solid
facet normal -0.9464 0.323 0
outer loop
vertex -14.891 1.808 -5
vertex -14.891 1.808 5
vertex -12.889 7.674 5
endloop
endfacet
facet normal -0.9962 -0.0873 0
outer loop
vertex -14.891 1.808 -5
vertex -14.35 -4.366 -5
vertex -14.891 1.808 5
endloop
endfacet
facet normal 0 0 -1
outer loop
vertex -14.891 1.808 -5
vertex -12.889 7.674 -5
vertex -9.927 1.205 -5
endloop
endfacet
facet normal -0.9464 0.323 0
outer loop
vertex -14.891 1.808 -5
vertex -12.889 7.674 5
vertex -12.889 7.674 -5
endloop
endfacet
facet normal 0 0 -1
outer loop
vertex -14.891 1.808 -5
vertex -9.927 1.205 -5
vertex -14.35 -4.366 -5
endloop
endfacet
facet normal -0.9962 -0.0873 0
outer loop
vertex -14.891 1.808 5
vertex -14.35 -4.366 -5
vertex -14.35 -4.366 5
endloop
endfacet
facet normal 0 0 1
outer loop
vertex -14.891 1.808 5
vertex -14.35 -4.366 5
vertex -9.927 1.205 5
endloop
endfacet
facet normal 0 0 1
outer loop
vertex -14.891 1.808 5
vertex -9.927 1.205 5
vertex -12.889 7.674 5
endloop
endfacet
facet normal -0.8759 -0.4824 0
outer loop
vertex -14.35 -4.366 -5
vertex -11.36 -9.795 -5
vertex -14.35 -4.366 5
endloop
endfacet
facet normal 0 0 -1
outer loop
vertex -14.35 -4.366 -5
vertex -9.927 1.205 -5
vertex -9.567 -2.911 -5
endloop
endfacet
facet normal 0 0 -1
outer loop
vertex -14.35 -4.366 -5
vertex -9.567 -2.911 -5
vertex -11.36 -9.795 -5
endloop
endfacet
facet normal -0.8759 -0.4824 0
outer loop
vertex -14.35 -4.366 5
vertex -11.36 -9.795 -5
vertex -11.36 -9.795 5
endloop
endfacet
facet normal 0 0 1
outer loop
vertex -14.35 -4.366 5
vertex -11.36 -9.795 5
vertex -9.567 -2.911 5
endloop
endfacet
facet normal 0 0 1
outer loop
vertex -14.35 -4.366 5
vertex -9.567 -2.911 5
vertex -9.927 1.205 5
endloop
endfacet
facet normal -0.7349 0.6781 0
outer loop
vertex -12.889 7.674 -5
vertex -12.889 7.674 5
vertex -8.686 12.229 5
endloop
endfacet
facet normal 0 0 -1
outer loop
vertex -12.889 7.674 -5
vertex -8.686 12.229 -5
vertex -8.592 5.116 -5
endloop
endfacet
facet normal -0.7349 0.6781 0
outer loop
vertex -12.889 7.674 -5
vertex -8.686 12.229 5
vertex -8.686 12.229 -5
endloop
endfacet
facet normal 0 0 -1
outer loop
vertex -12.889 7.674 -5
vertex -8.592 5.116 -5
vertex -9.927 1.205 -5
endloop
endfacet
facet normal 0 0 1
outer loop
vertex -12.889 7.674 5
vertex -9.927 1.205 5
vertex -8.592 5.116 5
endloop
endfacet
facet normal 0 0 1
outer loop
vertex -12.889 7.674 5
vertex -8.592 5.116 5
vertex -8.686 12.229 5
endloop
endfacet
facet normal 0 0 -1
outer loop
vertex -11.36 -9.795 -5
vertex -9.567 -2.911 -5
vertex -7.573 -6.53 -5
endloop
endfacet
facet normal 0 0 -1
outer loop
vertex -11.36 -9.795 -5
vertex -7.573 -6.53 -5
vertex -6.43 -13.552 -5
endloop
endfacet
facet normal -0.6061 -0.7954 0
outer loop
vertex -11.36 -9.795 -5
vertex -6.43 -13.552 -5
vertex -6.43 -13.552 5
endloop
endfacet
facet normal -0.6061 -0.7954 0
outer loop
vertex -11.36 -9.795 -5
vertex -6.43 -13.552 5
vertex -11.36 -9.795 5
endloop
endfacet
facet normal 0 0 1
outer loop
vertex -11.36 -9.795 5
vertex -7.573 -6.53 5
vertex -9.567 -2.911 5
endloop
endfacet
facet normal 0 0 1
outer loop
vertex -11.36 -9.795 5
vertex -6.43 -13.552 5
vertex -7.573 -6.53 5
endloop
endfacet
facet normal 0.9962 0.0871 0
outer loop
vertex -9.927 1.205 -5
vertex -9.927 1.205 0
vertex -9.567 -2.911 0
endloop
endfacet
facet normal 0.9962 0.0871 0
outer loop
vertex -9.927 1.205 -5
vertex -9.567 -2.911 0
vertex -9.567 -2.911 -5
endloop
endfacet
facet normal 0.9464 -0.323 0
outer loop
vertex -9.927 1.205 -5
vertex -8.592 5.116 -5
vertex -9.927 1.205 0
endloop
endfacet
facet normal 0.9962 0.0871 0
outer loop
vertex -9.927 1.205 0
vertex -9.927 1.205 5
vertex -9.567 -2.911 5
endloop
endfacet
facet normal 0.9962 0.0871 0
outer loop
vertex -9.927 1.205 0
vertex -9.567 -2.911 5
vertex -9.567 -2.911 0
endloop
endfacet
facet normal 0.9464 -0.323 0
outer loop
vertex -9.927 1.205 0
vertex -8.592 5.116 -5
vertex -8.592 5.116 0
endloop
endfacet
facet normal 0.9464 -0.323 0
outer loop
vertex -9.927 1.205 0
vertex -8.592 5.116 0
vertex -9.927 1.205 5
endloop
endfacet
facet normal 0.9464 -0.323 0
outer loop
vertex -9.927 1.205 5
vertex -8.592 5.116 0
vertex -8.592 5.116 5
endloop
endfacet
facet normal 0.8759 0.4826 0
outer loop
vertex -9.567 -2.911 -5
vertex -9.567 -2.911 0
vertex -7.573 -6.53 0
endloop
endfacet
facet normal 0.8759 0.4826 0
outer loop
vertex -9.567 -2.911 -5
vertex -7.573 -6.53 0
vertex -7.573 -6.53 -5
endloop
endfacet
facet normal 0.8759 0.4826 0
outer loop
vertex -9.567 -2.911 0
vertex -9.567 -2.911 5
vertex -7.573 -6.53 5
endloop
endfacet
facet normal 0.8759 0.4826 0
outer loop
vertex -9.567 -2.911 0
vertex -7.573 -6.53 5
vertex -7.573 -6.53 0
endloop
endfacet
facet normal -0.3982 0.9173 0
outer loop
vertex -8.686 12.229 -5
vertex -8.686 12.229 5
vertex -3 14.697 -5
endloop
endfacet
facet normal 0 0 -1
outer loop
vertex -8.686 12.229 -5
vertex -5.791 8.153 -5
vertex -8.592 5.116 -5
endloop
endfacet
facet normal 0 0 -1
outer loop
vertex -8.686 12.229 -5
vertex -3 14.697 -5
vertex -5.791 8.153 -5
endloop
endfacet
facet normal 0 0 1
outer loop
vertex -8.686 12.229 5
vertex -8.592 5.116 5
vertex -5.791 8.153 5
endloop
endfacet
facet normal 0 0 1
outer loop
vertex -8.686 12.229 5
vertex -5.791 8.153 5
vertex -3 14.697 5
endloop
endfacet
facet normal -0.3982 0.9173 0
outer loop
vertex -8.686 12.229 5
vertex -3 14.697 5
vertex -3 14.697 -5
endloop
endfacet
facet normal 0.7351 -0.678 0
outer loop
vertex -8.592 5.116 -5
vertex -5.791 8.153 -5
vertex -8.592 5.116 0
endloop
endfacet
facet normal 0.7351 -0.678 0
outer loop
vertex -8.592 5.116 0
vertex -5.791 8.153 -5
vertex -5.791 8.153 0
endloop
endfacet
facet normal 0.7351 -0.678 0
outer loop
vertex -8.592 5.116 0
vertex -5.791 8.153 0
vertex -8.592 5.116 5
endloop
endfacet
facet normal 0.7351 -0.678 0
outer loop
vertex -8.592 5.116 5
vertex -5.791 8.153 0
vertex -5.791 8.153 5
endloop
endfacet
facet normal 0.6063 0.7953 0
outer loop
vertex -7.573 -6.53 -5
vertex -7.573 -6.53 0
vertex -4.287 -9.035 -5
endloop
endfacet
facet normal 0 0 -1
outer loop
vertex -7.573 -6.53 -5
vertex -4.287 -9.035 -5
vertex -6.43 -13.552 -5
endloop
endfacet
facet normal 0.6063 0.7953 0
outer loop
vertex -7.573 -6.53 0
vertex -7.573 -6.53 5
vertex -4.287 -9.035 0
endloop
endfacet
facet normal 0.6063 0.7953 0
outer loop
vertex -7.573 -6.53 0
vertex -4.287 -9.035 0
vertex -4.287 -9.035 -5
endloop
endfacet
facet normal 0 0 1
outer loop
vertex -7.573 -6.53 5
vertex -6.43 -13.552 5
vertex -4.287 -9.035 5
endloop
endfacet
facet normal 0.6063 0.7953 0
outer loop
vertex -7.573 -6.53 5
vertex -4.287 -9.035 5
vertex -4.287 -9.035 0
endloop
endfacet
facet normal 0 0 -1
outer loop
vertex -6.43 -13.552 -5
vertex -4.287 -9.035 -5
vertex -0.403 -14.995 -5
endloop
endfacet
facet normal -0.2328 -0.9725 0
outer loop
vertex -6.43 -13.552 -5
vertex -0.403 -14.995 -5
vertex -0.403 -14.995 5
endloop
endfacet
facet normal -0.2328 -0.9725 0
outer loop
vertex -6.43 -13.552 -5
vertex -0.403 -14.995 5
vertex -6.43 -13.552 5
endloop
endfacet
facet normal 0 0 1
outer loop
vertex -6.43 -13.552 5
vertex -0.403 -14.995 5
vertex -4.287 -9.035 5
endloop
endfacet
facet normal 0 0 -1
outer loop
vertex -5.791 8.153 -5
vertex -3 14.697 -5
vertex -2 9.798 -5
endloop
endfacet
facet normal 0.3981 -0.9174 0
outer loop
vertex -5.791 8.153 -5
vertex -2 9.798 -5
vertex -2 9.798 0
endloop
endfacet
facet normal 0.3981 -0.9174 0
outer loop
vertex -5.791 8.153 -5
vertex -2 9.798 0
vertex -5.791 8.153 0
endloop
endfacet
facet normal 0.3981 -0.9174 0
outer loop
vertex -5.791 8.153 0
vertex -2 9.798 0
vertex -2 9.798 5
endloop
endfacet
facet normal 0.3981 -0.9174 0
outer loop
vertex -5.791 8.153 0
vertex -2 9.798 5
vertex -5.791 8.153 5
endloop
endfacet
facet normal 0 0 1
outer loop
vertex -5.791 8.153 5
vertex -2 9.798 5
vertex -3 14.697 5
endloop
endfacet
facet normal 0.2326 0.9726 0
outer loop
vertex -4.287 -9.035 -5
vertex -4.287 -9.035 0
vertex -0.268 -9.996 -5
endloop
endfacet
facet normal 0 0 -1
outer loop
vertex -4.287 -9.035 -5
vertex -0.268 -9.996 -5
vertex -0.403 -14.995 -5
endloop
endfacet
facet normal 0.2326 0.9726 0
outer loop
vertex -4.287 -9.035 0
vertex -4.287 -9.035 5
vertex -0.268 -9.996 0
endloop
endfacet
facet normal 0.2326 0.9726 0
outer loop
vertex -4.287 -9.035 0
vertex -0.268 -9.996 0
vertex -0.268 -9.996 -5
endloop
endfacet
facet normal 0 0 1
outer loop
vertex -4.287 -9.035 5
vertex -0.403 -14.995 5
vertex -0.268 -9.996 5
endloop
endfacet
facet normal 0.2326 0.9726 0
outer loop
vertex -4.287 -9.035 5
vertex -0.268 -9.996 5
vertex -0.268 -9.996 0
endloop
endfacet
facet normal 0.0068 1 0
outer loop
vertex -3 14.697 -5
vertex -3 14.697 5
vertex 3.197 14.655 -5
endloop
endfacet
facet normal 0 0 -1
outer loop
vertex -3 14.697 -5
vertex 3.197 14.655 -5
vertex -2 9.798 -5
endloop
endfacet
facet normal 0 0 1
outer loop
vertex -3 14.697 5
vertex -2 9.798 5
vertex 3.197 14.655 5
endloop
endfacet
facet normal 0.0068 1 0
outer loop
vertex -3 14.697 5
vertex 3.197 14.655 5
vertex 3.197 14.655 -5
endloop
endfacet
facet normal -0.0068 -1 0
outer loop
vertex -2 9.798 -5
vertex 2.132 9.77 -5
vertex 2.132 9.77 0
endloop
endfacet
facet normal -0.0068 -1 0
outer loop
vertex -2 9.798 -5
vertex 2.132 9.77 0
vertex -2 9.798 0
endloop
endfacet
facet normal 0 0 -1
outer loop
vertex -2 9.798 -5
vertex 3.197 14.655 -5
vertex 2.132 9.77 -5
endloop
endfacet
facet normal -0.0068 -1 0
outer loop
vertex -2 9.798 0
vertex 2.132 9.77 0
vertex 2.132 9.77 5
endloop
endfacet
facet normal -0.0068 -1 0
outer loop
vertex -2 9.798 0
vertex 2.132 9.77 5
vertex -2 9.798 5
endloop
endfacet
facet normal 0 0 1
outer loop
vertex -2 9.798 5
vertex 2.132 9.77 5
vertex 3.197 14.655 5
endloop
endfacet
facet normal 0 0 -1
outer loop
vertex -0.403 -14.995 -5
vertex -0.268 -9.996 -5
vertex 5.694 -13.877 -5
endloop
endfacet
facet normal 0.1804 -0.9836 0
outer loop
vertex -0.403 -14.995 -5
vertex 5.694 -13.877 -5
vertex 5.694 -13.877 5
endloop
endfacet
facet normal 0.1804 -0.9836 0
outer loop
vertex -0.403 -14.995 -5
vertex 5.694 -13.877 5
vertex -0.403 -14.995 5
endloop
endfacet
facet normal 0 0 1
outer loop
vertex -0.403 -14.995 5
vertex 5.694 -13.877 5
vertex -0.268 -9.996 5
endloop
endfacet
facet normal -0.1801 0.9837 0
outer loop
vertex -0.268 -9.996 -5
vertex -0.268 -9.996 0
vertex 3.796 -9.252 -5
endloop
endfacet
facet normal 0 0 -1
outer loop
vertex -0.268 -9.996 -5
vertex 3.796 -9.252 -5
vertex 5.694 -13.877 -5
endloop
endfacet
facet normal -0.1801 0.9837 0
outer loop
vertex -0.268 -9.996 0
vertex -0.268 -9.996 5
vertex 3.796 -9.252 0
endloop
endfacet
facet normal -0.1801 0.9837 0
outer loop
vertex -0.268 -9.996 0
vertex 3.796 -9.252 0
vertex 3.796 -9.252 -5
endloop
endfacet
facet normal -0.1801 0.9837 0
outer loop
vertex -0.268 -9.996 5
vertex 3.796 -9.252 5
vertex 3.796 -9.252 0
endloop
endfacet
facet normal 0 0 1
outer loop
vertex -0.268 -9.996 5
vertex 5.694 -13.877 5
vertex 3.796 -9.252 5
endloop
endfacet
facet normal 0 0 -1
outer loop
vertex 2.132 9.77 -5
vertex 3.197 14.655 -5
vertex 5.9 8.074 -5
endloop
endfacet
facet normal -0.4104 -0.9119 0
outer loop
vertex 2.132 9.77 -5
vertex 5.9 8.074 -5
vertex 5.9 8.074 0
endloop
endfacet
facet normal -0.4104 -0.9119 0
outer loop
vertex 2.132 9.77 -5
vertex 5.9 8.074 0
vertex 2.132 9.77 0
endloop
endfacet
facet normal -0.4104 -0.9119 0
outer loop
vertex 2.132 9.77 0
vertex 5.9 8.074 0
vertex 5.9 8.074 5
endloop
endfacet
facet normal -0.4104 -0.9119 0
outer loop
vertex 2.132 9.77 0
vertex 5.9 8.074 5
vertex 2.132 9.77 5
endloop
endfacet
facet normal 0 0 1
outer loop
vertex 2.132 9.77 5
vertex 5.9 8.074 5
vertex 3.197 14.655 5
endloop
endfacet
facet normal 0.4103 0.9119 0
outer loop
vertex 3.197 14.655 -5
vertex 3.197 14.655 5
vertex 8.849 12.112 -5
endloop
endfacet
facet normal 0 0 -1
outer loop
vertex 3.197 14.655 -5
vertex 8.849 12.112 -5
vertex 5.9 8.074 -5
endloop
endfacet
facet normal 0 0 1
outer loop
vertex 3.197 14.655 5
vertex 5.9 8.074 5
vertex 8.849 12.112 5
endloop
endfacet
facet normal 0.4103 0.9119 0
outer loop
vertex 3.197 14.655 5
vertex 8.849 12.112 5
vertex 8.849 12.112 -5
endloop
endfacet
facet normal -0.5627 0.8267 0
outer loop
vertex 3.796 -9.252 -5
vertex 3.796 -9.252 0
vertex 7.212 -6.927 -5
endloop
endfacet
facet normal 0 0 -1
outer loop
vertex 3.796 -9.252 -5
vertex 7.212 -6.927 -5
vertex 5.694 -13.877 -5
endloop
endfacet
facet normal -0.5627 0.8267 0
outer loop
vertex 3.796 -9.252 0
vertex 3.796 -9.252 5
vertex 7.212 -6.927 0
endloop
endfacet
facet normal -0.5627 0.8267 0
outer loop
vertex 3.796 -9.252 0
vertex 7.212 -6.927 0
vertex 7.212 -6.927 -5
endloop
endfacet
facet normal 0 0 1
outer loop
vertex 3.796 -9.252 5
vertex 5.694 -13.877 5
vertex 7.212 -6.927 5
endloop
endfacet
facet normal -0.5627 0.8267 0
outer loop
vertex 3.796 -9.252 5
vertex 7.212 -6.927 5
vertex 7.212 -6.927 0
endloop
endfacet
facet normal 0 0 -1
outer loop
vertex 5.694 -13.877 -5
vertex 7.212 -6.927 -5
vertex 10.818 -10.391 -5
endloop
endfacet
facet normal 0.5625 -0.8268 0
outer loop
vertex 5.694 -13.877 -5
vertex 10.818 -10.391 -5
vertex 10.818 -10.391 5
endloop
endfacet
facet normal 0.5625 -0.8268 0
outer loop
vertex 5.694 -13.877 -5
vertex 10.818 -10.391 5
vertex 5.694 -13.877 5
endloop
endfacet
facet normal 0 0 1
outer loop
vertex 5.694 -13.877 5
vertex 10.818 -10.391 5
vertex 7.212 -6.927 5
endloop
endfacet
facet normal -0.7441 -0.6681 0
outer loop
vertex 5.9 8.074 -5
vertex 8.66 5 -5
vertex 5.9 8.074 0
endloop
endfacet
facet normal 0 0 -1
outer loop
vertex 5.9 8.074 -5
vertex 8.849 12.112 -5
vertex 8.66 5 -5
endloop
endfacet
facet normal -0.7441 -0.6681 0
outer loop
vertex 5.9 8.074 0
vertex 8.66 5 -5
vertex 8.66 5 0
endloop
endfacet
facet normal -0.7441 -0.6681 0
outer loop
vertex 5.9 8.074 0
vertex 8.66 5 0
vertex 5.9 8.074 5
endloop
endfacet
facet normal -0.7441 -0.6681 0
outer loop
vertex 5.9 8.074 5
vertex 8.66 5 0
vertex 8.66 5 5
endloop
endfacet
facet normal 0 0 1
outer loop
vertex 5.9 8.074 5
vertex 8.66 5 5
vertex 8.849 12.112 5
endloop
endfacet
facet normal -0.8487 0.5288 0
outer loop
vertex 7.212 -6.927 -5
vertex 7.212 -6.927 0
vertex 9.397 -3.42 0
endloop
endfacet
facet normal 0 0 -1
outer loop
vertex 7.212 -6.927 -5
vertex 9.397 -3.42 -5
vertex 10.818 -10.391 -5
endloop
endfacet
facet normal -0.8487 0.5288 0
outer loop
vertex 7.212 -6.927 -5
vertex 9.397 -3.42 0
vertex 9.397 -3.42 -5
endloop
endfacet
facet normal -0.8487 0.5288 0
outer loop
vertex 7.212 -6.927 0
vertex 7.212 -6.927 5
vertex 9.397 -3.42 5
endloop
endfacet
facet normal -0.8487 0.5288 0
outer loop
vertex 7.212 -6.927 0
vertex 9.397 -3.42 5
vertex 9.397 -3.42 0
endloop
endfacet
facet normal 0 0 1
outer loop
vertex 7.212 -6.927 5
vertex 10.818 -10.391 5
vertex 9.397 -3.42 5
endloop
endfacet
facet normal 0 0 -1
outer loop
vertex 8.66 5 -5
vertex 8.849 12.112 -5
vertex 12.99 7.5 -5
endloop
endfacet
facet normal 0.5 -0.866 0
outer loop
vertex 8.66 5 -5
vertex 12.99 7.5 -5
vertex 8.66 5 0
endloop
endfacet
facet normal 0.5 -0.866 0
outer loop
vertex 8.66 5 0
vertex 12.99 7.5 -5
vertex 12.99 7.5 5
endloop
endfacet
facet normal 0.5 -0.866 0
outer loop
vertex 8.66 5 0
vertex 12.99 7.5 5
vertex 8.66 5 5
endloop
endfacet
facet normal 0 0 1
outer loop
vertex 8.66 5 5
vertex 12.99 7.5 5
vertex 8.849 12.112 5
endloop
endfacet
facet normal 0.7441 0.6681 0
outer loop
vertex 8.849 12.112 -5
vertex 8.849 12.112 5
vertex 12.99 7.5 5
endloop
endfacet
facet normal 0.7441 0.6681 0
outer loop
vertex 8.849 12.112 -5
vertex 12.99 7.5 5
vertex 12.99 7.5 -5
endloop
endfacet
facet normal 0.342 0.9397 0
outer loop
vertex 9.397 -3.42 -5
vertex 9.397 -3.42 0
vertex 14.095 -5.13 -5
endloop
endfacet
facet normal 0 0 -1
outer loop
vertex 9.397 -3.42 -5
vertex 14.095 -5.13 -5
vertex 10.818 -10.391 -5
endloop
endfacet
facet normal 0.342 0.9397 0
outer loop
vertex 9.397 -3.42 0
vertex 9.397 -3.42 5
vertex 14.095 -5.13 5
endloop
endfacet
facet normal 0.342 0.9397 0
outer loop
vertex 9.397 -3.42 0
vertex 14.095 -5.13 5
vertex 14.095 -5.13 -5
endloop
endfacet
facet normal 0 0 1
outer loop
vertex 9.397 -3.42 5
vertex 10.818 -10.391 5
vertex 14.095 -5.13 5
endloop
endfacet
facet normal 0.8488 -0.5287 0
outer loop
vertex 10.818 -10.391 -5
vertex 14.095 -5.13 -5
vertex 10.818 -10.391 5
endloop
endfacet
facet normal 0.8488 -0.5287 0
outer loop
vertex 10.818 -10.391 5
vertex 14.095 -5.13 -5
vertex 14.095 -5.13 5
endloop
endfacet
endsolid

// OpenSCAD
// Start: lazy_union
default_5_default_5();
// End: lazy_union

// Modules.

// 'PartMaterial undef-default - default 5.0'
module default_5_default_5() {
  // 'None : _combine_solids_and_holes'
  union() {
    // 'default : _combine_solids_and_holes'
    union() {
      // 'outer'
      %multmatrix(m=[[1.0, 0.0, 0.0, 0.0], [-0.0, -1.0, -0.0, -0.0], [-0.0, -0.0, -1.0, 5.0], [0.0, 0.0, 0.0, 1.0]]) {
        // 'outer'
        color(c=[0.0, 1.0, 0.35, 0.4]) {
          // 'outer : _combine_solids_and_holes'
          union() {
            // 'outer'
            cylinder(h=10.0, r1=15.0, r2=15.0, center=false, $fn=16);
          }
        }
      }
      // 'inner'
      %multmatrix(m=[[1.0, 0.0, 0.0, 0.0], [-0.0, -1.0, -0.0, -0.0], [-0.0, -0.0, -1.0, 5.005], [0.0, 0.0, 0.0, 1.0]]) {
        // 'inner'
        color(c=[1.0, 0.0, 0.0, 0.4]) {
          // 'inner : _combine_solids_and_holes'
          union() {
            // 'inner'
            cylinder(h=10.01, r1=10.0, r2=10.0, center=false, $fn=16);
          }
        }
      }
      // 'sleeve'
      multmatrix(m=[[0.9396926207859084, -0.3420201433256687, 0.0, 0.0], [-0.3420201433256687, -0.9396926207859084, 0.0, 0.0], [0.0, 0.0, -1.0, 0.0], [0.0, 0.0, 0.0, 1.0]]) {
        // 'sleeve : _combine_solids_and_holes'
        union() {
          // 'sleeve'
          polyhedron(points=[[10.0, 0.0, 0.0], [10.0, 0.0, 5.0], [15.0, 0.0, 5.0], [15.0, 0.0, -5.0], [10.0, 0.0, -5.0], [9.146343005342546, 4.04282198824305, 0.0], [9.146343005342546, 4.04282198824305, 5.0], [13.719514508013818, 6.064232982364575, 5.0], [13.719514508013818, 6.064232982364575, -5.0], [9.146343005342546, 4.04282198824305, -5.0], [6.731118074275702, 7.395407322802373, 0.0], [6.731118074275702, 7.395407322802373, 5.0], [10.096677111413554, 11.093110984203559, 5.0], [10.096677111413554, 11.093110984203559, -5.0], [6.731118074275702, 7.395407322802373, -5.0], [3.1666799380147266, 9.485364419471455, 0.0], [3.1666799380147266, 9.485364419471455, 5.0], [4.750019907022089, 14.228046629207181, 5.0], [4.750019907022089, 14.228046629207181, -5.0], [3.1666799380147266, 9.485364419471455, -5.0], [-0.9384098940317918, 9.955871979429187, 0.0], [-0.9384098940317918, 9.955871979429187, 5.0], [-1.4076148410476876, 14.93380796914378, 5.0], [-1.4076148410476876, 14.93380796914378, -5.0], [-0.9384098940317918, 9.955871979429187, -5.0], [-4.883283692099108, 8.726599588756144, 0.0], [-4.883283692099108, 8.726599588756144, 5.0], [-7.324925538148662, 13.089899383134217, 5.0], [-7.324925538148662, 13.089899383134217, -5.0], [-4.883283692099108, 8.726599588756144, -5.0], [-7.994427634035009, 6.007422642379792, 0.0], [-7.994427634035009, 6.007422642379792, 5.0], [-11.991641451052514, 9.011133963569687, 5.0], [-11.991641451052514, 9.011133963569687, -5.0], [-7.994427634035009, 6.007422642379792, -5.0], [-9.740671762355547, 2.2625900242972237, 0.0], [-9.740671762355547, 2.2625900242972237, 5.0], [-14.61100764353332, 3.3938850364458353, 5.0], [-14.61100764353332, 3.3938850364458353, -5.0], [-9.740671762355547, 2.2625900242972237, -5.0], [-9.823877374156648, -1.8685377538420456, 0.0], [-9.823877374156648, -1.8685377538420456, 5.0], [-14.735816061234972, -2.8028066307630684, 5.0], [-14.735816061234972, -2.8028066307630684, -5.0], [-9.823877374156648, -1.8685377538420456, -5.0], [-8.229838658936565, -5.680647467311556, 0.0], [-8.229838658936565, -5.680647467311556, 5.0], [-12.344757988404849, -8.520971200967335, 5.0], [-12.344757988404849, -8.520971200967335, -5.0], [-8.229838658936565, -5.680647467311556, -5.0], [-5.230708076495781, -8.522892291850333, 0.0], [-5.230708076495781, -8.522892291850333, 5.0], [-7.846062114743672, -12.7843384377755, 5.0], [-7.846062114743672, -12.7843384377755, -5.0], [-5.230708076495781, -8.522892291850333, -5.0], [-1.3385313867526174, -9.910011792459084, 0.0], [-1.3385313867526174, -9.910011792459084, 5.0], [-2.007797080128926, -14.865017688688628, 5.0], [-2.007797080128926, -14.865017688688628, -5.0], [-1.3385313867526174, -9.910011792459084, -5.0], [2.782174639164521, -9.605181116313725, 0.0], [2.782174639164521, -9.605181116313725, 5.0], [4.173261958746782, -14.407771674470586, 5.0], [4.173261958746782, -14.407771674470586, -5.0], [2.782174639164521, -9.605181116313725, -5.0], [6.4278760968653925, -7.660444431189781, 0.0], [6.4278760968653925, -7.660444431189781, 5.0], [9.641814145298088, -11.490666646784671, 5.0], [9.641814145298088, -11.490666646784671, -5.0], [6.4278760968653925, -7.660444431189781, -5.0]], faces=[[0, 5, 6, 1], [1, 6, 7, 2], [2, 7, 8, 3], [3, 8, 9, 4], [4, 9, 5, 0], [5, 10, 11, 6], [6, 11, 12, 7], [7, 12, 13, 8], [8, 13, 14, 9], [9, 14, 10, 5], [10, 15, 16, 11], [11, 16, 17, 12], [12, 17, 18, 13], [13, 18, 19, 14], [14, 19, 15, 10], [15, 20, 21, 16], [16, 21, 22, 17], [17, 22, 23, 18], [18, 23, 24, 19], [19, 24, 20, 15], [20, 25, 26, 21], [21, 26, 27, 22], [22, 27, 28, 23], [23, 28, 29, 24], [24, 29, 25, 20], [25, 30, 31, 26], [26, 31, 32, 27], [27, 32, 33, 28], [28, 33, 34, 29], [29, 34, 30, 25], [30, 35, 36, 31], [31, 36, 37, 32], [32, 37, 38, 33], [33, 38, 39, 34], [34, 39, 35, 30], [35, 40, 41, 36], [36, 41, 42, 37], [37, 42, 43, 38], [38, 43, 44, 39], [39, 44, 40, 35], [40, 45, 46, 41], [41, 46, 47, 42], [42, 47, 48, 43], [43, 48, 49, 44], [44, 49, 45, 40], [45, 50, 51, 46], [46, 51, 52, 47], [47, 52, 53, 48], [48, 53, 54, 49], [49, 54, 50, 45], [50, 55, 56, 51], [51, 56, 57, 52], [52, 57, 58, 53], [53, 58, 59, 54], [54, 59, 55, 50], [55, 60, 61, 56], [56, 61, 62, 57], [57, 62, 63, 58], [58, 63, 64, 59], [59, 64, 60, 55], [60, 65, 66, 61], [61, 66, 67, 62], [62, 67, 68, 63], [63, 68, 69, 64], [64, 69, 65, 60], [0, 1, 2, 3, 4], [69, 68, 67, 66, 65]], convexity=10);
        }
      }
    }
  }
} // end module default_5_default_5
